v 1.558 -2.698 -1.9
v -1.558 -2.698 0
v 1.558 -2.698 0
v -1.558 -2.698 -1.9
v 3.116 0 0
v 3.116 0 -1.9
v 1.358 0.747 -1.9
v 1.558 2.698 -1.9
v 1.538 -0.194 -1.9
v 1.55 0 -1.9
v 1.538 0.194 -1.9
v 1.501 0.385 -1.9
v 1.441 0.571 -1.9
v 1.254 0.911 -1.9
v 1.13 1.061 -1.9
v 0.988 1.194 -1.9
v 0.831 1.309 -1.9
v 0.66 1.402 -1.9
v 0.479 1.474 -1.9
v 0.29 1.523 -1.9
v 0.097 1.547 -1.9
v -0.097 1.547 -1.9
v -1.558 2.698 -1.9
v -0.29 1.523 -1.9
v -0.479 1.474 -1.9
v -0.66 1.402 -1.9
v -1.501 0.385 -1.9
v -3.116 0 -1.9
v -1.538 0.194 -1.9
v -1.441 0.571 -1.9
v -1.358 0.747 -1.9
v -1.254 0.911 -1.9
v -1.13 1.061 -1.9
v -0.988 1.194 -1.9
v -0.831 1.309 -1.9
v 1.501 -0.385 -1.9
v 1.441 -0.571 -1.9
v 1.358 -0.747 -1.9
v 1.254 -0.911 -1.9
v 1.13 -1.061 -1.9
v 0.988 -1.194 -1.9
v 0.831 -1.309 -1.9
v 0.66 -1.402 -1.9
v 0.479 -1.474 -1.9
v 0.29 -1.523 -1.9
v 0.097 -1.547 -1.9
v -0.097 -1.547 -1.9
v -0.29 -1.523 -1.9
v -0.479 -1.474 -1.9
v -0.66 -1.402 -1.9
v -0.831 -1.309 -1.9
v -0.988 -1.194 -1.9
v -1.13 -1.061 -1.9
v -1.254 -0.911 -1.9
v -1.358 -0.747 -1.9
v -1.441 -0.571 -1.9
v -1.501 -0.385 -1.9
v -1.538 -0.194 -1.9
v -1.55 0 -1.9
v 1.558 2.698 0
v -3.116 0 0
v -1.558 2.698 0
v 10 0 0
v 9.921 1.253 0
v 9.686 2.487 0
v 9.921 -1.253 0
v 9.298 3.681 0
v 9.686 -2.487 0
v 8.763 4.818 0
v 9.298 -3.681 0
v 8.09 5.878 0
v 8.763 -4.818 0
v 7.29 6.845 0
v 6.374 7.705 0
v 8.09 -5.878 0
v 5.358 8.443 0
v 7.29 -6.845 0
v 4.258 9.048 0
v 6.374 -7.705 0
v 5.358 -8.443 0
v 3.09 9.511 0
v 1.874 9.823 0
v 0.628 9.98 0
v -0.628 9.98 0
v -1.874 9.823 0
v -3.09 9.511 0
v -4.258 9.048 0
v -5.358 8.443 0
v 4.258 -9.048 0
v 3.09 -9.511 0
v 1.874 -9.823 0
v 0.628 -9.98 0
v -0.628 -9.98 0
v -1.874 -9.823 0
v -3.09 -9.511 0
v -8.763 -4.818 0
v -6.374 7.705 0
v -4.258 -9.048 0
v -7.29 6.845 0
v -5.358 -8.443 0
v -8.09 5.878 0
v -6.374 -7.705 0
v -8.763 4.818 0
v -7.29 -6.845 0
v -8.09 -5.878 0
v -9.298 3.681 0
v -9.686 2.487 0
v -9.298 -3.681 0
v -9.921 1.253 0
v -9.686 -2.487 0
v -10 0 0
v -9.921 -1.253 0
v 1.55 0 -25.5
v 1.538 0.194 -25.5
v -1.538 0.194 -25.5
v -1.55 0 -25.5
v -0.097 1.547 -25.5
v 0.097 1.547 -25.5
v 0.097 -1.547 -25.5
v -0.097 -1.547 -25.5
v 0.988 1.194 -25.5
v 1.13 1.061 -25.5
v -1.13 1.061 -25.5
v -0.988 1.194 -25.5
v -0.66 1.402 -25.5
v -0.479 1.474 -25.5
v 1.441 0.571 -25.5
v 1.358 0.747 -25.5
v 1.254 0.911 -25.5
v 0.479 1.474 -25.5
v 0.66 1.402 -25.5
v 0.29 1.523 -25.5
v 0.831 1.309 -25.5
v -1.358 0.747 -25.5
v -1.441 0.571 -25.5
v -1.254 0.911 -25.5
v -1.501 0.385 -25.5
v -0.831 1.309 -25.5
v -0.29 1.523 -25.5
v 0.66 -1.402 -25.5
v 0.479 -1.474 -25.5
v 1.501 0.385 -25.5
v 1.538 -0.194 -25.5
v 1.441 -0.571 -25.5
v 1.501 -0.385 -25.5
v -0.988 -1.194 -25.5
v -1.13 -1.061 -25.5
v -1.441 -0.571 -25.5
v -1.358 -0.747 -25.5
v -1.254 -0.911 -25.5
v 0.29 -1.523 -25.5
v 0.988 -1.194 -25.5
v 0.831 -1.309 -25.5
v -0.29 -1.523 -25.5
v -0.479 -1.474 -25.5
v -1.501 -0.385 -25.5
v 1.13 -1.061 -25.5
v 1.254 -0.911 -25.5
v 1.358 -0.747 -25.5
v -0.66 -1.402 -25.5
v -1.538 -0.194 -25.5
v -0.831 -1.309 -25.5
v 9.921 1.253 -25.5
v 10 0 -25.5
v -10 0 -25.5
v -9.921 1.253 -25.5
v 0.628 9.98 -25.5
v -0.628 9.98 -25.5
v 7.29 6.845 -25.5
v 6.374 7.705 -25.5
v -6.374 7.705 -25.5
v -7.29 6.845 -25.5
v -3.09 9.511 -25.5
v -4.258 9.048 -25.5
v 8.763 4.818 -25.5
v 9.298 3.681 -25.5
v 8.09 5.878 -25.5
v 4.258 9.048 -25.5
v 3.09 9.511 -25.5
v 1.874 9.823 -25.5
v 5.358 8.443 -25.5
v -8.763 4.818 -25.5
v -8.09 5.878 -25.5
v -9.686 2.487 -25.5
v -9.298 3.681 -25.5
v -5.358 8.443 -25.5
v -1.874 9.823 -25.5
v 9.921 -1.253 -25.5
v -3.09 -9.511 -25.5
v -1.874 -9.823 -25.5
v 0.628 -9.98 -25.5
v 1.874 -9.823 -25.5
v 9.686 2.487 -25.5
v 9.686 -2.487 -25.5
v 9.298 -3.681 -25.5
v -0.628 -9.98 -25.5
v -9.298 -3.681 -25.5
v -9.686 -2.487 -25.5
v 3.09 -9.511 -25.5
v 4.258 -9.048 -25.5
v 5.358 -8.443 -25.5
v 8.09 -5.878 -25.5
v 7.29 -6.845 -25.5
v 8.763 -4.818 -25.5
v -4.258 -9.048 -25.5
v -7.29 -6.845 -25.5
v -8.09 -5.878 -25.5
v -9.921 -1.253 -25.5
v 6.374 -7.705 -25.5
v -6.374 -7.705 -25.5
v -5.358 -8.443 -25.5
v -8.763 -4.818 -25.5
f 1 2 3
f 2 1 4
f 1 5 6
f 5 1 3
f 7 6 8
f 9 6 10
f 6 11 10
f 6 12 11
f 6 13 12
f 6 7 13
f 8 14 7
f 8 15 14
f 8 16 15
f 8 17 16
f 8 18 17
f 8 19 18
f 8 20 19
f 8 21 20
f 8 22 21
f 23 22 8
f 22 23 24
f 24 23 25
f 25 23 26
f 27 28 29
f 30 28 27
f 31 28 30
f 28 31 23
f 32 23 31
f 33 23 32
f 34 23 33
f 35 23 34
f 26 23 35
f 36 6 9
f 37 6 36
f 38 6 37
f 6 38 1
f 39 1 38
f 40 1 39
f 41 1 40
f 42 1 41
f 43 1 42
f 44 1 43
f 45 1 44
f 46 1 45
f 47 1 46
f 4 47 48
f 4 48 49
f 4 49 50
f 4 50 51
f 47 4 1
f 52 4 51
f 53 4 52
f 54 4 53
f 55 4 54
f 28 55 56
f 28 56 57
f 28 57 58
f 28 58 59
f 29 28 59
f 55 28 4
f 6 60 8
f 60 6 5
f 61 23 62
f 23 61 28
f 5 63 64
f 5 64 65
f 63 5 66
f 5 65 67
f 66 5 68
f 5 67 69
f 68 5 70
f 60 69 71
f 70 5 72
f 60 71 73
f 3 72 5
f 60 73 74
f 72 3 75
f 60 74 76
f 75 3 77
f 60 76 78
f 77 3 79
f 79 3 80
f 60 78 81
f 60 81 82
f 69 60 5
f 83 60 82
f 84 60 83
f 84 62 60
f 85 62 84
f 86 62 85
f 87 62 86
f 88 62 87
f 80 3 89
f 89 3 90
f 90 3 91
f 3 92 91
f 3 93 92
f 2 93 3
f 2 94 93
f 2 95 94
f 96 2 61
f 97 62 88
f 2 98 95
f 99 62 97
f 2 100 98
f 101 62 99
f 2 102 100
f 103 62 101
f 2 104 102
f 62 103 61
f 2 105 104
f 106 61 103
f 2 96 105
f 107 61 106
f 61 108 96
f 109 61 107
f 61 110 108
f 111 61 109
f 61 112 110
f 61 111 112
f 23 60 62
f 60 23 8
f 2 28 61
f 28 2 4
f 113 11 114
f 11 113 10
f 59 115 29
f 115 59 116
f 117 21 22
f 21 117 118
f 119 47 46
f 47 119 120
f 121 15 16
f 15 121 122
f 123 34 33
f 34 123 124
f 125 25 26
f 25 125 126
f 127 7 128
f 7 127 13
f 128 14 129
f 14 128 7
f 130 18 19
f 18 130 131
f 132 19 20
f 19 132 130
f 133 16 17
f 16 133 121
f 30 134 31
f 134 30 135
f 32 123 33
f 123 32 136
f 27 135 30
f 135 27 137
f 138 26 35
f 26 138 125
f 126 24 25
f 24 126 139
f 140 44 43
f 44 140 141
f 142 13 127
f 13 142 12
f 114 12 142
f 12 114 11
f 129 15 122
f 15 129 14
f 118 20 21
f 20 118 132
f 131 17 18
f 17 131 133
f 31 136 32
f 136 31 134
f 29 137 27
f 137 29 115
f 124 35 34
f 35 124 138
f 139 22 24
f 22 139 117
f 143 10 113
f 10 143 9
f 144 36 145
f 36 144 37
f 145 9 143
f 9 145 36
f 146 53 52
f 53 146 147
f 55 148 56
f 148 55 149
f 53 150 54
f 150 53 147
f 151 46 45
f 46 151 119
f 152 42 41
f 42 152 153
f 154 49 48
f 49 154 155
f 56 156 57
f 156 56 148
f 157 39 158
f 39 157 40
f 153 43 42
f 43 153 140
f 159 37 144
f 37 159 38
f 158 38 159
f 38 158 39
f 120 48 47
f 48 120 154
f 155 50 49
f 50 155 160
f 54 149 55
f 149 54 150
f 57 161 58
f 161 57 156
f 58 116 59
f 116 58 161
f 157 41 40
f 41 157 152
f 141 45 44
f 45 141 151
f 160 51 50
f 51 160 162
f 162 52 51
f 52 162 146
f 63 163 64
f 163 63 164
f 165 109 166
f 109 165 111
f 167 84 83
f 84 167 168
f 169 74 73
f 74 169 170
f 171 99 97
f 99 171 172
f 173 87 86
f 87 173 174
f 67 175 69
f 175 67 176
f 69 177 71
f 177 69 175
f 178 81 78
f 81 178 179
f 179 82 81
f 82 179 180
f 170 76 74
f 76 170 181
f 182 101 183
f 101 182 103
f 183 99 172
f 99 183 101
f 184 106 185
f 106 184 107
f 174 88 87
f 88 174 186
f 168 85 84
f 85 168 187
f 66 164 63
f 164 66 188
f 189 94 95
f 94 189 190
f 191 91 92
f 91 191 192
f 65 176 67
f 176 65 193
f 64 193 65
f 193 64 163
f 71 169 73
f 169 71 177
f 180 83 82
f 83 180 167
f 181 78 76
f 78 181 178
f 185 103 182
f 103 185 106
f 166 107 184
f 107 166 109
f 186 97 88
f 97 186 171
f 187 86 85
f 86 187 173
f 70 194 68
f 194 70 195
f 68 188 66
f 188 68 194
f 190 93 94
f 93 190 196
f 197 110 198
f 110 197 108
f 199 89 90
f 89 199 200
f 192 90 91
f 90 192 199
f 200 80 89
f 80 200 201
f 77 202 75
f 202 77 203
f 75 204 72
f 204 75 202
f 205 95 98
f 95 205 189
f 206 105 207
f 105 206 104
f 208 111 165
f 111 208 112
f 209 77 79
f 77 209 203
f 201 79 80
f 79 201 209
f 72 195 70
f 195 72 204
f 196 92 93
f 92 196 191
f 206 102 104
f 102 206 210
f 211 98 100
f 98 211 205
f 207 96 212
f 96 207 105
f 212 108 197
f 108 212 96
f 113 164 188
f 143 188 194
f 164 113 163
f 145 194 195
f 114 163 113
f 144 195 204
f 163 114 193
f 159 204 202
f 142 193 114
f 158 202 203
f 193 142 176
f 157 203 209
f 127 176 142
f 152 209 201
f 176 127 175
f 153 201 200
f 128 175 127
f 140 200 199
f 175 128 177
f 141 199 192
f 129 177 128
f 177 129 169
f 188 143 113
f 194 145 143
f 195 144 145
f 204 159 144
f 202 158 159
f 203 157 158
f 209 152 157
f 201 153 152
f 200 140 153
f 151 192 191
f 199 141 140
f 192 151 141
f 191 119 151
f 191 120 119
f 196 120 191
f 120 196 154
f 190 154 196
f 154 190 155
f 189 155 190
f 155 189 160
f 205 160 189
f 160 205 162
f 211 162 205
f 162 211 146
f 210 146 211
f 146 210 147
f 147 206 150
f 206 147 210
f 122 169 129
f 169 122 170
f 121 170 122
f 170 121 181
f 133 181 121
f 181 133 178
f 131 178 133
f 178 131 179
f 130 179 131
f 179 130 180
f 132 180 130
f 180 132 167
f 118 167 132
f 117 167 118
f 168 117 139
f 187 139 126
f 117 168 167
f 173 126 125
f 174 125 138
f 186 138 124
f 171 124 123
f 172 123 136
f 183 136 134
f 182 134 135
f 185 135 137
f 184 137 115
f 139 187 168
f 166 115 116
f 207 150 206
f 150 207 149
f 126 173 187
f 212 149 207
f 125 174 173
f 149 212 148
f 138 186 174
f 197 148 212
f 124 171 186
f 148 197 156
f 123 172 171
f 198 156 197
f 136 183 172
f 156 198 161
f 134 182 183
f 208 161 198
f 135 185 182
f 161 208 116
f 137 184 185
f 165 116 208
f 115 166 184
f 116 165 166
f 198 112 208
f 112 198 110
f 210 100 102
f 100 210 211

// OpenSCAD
$fn = 50;


difference() {
	union() {
		translate(v = [0, 0, -25.5000000000]) {
			cylinder(h = 25.5000000000, r = 10.0000000000);
		}
	}
	union() {
		translate(v = [0, 0, 0]) {
			rotate(a = [0, 0, 0]) {
				difference() {
					union() {
						translate(v = [0, 0, -1.9000000000]) {
							linear_extrude(height = 1.9000000000) {
								polygon(points = [[3.1158000000, 0.0000000000], [1.5579000000, 2.6983619531], [-1.5579000000, 2.6983619531], [-3.1158000000, 0.0000000000], [-1.5579000000, -2.6983619531], [1.5579000000, -2.6983619531]]);
							}
						}
					}
					union();
				}
			}
		}
		#translate(v = [0, 0, -100.0000000000]) {
			cylinder(h = 200, r = 1.5500000000);
		}
	}
}
